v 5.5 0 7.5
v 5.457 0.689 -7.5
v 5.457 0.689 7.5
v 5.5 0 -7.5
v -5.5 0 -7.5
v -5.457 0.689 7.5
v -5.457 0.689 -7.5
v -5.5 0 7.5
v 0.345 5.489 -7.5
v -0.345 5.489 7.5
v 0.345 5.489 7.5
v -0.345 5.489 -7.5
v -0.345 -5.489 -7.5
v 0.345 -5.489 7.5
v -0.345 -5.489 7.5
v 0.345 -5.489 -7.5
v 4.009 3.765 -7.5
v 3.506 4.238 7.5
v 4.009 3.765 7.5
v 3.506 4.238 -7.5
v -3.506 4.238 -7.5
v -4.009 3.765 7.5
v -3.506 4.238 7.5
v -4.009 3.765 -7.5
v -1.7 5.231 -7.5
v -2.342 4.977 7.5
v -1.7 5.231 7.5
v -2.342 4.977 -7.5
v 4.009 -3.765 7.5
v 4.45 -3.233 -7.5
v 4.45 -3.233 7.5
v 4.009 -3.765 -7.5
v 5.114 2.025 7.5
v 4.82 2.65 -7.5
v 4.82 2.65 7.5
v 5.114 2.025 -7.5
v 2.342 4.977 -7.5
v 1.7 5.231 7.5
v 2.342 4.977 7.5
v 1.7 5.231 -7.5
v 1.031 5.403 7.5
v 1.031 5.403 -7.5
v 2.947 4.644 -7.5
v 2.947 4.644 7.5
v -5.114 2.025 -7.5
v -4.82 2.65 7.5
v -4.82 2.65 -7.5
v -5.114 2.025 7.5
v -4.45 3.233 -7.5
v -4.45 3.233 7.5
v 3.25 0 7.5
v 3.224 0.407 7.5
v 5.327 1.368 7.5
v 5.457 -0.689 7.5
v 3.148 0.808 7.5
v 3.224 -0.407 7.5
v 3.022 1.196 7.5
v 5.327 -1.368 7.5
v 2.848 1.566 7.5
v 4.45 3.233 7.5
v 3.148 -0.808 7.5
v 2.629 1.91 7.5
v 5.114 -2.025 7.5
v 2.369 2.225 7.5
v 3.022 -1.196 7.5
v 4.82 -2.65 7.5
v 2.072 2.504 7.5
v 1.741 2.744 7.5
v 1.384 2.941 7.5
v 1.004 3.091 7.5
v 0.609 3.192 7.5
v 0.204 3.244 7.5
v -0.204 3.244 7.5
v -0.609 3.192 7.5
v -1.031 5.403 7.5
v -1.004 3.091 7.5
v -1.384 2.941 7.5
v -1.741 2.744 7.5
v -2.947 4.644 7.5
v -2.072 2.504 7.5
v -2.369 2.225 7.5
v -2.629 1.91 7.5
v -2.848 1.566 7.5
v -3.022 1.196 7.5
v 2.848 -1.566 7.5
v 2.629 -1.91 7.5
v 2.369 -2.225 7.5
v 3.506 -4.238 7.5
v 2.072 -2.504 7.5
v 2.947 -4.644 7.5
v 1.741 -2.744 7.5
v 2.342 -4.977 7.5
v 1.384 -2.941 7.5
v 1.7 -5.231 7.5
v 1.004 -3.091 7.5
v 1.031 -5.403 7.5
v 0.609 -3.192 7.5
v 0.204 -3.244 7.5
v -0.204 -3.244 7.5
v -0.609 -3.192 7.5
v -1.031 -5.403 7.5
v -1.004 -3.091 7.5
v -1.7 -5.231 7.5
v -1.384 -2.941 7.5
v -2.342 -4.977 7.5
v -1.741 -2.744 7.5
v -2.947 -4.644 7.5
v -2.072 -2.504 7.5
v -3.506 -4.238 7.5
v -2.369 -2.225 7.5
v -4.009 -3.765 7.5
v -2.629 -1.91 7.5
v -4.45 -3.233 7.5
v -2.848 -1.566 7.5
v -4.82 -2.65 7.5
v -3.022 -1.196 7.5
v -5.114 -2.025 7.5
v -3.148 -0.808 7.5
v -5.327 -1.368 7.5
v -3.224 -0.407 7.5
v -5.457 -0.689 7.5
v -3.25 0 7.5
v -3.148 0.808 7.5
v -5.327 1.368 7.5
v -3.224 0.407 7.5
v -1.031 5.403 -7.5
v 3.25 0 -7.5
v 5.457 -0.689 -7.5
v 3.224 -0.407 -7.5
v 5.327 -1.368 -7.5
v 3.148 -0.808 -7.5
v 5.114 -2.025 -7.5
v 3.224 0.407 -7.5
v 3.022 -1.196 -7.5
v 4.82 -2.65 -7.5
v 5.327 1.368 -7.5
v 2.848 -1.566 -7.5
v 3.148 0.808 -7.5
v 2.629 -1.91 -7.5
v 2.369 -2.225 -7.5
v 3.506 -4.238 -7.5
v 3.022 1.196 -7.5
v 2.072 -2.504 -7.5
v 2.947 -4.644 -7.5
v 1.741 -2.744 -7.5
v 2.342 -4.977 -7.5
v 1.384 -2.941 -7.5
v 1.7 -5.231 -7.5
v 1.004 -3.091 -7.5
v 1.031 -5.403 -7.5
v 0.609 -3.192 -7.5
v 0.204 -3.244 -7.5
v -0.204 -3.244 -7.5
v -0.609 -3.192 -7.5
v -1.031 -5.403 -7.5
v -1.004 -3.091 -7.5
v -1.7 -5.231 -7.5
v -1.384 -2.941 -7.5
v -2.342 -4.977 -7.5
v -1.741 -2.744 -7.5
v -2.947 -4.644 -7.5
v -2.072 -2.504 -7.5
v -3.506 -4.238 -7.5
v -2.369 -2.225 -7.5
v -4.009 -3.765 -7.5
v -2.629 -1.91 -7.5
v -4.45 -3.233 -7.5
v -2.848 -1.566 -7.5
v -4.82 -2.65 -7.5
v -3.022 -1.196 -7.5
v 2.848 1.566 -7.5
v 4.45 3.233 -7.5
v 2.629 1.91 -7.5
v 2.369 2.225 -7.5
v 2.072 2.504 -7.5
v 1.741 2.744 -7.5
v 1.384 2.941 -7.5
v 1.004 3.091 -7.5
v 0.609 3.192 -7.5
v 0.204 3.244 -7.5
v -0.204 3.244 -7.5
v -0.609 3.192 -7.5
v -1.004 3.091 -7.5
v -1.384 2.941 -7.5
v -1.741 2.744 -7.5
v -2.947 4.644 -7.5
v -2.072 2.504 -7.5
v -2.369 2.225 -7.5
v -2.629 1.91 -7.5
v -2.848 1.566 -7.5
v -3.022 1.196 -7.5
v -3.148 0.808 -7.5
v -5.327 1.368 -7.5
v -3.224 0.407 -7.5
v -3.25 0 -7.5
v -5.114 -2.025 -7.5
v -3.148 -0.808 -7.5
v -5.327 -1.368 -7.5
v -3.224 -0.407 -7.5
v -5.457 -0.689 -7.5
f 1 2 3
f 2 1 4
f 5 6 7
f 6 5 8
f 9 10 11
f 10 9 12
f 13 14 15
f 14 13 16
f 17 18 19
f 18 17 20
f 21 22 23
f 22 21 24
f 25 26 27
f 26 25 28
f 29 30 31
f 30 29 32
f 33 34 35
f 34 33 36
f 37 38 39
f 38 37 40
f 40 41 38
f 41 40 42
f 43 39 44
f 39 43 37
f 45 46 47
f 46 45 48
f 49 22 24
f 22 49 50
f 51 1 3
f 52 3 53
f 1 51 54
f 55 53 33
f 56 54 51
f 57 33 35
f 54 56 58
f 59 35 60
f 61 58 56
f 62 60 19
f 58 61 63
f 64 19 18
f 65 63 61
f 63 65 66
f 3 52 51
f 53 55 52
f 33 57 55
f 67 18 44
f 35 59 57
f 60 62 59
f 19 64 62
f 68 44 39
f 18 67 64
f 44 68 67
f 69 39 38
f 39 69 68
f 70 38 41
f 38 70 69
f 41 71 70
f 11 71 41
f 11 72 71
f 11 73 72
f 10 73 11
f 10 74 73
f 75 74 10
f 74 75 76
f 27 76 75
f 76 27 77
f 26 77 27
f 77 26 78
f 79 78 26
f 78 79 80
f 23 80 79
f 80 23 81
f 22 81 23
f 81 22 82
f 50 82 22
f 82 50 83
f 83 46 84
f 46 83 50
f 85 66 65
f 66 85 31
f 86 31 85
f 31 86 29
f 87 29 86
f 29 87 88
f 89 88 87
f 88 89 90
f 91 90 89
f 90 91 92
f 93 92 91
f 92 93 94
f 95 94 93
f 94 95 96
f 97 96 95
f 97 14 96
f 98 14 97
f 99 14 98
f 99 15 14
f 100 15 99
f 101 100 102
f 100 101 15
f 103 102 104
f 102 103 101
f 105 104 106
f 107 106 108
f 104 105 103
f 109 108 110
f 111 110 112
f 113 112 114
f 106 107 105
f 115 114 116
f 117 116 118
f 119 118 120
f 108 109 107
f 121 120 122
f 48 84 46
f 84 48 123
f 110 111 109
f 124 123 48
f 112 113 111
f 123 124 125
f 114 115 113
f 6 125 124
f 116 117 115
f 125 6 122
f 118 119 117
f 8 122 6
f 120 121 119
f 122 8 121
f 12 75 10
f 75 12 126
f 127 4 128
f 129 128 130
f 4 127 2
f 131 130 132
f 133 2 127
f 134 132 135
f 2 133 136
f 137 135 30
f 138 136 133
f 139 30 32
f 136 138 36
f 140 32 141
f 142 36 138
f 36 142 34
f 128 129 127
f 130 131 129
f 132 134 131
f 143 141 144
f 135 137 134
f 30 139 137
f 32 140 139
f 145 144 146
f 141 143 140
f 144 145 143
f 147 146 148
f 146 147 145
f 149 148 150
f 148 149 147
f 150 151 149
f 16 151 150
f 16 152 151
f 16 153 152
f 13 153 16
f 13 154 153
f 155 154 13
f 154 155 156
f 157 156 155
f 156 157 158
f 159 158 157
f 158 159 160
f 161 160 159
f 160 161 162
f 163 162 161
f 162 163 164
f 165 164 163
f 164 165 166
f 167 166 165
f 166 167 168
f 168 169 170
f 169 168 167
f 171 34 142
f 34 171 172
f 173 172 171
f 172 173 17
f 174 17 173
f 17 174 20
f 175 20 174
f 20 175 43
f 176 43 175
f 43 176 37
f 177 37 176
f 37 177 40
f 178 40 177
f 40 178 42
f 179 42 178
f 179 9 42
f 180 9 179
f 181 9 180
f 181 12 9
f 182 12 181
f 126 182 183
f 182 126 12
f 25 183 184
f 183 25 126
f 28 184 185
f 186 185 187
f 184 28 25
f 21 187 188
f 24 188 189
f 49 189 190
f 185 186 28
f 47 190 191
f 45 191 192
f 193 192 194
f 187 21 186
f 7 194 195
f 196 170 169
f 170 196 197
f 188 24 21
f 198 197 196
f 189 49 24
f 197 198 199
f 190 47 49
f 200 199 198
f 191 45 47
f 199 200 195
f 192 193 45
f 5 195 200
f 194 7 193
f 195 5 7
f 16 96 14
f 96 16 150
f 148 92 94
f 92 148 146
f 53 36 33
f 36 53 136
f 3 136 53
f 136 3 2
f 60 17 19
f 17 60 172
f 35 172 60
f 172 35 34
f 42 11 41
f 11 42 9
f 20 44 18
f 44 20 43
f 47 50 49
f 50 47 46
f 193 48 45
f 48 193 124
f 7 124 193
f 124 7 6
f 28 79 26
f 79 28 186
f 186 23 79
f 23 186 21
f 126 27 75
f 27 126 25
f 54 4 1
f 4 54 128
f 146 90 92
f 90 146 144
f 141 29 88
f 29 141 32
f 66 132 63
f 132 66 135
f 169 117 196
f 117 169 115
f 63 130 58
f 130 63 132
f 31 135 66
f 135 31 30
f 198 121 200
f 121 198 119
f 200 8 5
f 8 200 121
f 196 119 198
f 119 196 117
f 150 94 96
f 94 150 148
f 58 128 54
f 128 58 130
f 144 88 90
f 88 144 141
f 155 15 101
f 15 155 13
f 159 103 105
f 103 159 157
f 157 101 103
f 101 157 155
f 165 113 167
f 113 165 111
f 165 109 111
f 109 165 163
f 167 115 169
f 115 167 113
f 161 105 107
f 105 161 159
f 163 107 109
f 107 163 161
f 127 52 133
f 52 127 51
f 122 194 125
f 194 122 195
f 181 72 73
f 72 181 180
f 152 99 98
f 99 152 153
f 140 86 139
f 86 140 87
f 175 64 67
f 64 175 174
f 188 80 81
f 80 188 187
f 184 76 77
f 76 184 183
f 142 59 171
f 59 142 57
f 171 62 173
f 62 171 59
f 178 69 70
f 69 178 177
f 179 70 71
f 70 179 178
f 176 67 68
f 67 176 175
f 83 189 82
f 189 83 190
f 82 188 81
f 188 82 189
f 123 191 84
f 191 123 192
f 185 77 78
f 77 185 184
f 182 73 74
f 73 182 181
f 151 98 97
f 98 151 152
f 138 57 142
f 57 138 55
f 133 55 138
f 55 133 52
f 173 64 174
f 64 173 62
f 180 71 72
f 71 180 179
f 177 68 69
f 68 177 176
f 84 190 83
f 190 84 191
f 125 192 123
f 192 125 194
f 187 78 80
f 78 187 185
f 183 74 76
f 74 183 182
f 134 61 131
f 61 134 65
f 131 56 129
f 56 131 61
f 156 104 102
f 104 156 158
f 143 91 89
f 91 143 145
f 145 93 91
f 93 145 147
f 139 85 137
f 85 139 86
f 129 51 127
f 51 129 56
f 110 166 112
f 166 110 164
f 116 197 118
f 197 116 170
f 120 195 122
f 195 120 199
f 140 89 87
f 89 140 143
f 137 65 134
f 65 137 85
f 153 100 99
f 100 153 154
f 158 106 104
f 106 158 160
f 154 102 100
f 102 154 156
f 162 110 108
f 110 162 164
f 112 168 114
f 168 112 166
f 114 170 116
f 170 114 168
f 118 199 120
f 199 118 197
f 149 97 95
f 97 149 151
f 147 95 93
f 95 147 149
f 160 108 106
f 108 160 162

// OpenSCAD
$fn = 50;


difference() {
	union() {
		translate(v = [0, 0, -7.5000000000]) {
			cylinder(h = 15, r = 5.5000000000);
		}
	}
	union() {
		translate(v = [0, 0, -100.0000000000]) {
			cylinder(h = 200, r = 3.2500000000);
		}
	}
}
